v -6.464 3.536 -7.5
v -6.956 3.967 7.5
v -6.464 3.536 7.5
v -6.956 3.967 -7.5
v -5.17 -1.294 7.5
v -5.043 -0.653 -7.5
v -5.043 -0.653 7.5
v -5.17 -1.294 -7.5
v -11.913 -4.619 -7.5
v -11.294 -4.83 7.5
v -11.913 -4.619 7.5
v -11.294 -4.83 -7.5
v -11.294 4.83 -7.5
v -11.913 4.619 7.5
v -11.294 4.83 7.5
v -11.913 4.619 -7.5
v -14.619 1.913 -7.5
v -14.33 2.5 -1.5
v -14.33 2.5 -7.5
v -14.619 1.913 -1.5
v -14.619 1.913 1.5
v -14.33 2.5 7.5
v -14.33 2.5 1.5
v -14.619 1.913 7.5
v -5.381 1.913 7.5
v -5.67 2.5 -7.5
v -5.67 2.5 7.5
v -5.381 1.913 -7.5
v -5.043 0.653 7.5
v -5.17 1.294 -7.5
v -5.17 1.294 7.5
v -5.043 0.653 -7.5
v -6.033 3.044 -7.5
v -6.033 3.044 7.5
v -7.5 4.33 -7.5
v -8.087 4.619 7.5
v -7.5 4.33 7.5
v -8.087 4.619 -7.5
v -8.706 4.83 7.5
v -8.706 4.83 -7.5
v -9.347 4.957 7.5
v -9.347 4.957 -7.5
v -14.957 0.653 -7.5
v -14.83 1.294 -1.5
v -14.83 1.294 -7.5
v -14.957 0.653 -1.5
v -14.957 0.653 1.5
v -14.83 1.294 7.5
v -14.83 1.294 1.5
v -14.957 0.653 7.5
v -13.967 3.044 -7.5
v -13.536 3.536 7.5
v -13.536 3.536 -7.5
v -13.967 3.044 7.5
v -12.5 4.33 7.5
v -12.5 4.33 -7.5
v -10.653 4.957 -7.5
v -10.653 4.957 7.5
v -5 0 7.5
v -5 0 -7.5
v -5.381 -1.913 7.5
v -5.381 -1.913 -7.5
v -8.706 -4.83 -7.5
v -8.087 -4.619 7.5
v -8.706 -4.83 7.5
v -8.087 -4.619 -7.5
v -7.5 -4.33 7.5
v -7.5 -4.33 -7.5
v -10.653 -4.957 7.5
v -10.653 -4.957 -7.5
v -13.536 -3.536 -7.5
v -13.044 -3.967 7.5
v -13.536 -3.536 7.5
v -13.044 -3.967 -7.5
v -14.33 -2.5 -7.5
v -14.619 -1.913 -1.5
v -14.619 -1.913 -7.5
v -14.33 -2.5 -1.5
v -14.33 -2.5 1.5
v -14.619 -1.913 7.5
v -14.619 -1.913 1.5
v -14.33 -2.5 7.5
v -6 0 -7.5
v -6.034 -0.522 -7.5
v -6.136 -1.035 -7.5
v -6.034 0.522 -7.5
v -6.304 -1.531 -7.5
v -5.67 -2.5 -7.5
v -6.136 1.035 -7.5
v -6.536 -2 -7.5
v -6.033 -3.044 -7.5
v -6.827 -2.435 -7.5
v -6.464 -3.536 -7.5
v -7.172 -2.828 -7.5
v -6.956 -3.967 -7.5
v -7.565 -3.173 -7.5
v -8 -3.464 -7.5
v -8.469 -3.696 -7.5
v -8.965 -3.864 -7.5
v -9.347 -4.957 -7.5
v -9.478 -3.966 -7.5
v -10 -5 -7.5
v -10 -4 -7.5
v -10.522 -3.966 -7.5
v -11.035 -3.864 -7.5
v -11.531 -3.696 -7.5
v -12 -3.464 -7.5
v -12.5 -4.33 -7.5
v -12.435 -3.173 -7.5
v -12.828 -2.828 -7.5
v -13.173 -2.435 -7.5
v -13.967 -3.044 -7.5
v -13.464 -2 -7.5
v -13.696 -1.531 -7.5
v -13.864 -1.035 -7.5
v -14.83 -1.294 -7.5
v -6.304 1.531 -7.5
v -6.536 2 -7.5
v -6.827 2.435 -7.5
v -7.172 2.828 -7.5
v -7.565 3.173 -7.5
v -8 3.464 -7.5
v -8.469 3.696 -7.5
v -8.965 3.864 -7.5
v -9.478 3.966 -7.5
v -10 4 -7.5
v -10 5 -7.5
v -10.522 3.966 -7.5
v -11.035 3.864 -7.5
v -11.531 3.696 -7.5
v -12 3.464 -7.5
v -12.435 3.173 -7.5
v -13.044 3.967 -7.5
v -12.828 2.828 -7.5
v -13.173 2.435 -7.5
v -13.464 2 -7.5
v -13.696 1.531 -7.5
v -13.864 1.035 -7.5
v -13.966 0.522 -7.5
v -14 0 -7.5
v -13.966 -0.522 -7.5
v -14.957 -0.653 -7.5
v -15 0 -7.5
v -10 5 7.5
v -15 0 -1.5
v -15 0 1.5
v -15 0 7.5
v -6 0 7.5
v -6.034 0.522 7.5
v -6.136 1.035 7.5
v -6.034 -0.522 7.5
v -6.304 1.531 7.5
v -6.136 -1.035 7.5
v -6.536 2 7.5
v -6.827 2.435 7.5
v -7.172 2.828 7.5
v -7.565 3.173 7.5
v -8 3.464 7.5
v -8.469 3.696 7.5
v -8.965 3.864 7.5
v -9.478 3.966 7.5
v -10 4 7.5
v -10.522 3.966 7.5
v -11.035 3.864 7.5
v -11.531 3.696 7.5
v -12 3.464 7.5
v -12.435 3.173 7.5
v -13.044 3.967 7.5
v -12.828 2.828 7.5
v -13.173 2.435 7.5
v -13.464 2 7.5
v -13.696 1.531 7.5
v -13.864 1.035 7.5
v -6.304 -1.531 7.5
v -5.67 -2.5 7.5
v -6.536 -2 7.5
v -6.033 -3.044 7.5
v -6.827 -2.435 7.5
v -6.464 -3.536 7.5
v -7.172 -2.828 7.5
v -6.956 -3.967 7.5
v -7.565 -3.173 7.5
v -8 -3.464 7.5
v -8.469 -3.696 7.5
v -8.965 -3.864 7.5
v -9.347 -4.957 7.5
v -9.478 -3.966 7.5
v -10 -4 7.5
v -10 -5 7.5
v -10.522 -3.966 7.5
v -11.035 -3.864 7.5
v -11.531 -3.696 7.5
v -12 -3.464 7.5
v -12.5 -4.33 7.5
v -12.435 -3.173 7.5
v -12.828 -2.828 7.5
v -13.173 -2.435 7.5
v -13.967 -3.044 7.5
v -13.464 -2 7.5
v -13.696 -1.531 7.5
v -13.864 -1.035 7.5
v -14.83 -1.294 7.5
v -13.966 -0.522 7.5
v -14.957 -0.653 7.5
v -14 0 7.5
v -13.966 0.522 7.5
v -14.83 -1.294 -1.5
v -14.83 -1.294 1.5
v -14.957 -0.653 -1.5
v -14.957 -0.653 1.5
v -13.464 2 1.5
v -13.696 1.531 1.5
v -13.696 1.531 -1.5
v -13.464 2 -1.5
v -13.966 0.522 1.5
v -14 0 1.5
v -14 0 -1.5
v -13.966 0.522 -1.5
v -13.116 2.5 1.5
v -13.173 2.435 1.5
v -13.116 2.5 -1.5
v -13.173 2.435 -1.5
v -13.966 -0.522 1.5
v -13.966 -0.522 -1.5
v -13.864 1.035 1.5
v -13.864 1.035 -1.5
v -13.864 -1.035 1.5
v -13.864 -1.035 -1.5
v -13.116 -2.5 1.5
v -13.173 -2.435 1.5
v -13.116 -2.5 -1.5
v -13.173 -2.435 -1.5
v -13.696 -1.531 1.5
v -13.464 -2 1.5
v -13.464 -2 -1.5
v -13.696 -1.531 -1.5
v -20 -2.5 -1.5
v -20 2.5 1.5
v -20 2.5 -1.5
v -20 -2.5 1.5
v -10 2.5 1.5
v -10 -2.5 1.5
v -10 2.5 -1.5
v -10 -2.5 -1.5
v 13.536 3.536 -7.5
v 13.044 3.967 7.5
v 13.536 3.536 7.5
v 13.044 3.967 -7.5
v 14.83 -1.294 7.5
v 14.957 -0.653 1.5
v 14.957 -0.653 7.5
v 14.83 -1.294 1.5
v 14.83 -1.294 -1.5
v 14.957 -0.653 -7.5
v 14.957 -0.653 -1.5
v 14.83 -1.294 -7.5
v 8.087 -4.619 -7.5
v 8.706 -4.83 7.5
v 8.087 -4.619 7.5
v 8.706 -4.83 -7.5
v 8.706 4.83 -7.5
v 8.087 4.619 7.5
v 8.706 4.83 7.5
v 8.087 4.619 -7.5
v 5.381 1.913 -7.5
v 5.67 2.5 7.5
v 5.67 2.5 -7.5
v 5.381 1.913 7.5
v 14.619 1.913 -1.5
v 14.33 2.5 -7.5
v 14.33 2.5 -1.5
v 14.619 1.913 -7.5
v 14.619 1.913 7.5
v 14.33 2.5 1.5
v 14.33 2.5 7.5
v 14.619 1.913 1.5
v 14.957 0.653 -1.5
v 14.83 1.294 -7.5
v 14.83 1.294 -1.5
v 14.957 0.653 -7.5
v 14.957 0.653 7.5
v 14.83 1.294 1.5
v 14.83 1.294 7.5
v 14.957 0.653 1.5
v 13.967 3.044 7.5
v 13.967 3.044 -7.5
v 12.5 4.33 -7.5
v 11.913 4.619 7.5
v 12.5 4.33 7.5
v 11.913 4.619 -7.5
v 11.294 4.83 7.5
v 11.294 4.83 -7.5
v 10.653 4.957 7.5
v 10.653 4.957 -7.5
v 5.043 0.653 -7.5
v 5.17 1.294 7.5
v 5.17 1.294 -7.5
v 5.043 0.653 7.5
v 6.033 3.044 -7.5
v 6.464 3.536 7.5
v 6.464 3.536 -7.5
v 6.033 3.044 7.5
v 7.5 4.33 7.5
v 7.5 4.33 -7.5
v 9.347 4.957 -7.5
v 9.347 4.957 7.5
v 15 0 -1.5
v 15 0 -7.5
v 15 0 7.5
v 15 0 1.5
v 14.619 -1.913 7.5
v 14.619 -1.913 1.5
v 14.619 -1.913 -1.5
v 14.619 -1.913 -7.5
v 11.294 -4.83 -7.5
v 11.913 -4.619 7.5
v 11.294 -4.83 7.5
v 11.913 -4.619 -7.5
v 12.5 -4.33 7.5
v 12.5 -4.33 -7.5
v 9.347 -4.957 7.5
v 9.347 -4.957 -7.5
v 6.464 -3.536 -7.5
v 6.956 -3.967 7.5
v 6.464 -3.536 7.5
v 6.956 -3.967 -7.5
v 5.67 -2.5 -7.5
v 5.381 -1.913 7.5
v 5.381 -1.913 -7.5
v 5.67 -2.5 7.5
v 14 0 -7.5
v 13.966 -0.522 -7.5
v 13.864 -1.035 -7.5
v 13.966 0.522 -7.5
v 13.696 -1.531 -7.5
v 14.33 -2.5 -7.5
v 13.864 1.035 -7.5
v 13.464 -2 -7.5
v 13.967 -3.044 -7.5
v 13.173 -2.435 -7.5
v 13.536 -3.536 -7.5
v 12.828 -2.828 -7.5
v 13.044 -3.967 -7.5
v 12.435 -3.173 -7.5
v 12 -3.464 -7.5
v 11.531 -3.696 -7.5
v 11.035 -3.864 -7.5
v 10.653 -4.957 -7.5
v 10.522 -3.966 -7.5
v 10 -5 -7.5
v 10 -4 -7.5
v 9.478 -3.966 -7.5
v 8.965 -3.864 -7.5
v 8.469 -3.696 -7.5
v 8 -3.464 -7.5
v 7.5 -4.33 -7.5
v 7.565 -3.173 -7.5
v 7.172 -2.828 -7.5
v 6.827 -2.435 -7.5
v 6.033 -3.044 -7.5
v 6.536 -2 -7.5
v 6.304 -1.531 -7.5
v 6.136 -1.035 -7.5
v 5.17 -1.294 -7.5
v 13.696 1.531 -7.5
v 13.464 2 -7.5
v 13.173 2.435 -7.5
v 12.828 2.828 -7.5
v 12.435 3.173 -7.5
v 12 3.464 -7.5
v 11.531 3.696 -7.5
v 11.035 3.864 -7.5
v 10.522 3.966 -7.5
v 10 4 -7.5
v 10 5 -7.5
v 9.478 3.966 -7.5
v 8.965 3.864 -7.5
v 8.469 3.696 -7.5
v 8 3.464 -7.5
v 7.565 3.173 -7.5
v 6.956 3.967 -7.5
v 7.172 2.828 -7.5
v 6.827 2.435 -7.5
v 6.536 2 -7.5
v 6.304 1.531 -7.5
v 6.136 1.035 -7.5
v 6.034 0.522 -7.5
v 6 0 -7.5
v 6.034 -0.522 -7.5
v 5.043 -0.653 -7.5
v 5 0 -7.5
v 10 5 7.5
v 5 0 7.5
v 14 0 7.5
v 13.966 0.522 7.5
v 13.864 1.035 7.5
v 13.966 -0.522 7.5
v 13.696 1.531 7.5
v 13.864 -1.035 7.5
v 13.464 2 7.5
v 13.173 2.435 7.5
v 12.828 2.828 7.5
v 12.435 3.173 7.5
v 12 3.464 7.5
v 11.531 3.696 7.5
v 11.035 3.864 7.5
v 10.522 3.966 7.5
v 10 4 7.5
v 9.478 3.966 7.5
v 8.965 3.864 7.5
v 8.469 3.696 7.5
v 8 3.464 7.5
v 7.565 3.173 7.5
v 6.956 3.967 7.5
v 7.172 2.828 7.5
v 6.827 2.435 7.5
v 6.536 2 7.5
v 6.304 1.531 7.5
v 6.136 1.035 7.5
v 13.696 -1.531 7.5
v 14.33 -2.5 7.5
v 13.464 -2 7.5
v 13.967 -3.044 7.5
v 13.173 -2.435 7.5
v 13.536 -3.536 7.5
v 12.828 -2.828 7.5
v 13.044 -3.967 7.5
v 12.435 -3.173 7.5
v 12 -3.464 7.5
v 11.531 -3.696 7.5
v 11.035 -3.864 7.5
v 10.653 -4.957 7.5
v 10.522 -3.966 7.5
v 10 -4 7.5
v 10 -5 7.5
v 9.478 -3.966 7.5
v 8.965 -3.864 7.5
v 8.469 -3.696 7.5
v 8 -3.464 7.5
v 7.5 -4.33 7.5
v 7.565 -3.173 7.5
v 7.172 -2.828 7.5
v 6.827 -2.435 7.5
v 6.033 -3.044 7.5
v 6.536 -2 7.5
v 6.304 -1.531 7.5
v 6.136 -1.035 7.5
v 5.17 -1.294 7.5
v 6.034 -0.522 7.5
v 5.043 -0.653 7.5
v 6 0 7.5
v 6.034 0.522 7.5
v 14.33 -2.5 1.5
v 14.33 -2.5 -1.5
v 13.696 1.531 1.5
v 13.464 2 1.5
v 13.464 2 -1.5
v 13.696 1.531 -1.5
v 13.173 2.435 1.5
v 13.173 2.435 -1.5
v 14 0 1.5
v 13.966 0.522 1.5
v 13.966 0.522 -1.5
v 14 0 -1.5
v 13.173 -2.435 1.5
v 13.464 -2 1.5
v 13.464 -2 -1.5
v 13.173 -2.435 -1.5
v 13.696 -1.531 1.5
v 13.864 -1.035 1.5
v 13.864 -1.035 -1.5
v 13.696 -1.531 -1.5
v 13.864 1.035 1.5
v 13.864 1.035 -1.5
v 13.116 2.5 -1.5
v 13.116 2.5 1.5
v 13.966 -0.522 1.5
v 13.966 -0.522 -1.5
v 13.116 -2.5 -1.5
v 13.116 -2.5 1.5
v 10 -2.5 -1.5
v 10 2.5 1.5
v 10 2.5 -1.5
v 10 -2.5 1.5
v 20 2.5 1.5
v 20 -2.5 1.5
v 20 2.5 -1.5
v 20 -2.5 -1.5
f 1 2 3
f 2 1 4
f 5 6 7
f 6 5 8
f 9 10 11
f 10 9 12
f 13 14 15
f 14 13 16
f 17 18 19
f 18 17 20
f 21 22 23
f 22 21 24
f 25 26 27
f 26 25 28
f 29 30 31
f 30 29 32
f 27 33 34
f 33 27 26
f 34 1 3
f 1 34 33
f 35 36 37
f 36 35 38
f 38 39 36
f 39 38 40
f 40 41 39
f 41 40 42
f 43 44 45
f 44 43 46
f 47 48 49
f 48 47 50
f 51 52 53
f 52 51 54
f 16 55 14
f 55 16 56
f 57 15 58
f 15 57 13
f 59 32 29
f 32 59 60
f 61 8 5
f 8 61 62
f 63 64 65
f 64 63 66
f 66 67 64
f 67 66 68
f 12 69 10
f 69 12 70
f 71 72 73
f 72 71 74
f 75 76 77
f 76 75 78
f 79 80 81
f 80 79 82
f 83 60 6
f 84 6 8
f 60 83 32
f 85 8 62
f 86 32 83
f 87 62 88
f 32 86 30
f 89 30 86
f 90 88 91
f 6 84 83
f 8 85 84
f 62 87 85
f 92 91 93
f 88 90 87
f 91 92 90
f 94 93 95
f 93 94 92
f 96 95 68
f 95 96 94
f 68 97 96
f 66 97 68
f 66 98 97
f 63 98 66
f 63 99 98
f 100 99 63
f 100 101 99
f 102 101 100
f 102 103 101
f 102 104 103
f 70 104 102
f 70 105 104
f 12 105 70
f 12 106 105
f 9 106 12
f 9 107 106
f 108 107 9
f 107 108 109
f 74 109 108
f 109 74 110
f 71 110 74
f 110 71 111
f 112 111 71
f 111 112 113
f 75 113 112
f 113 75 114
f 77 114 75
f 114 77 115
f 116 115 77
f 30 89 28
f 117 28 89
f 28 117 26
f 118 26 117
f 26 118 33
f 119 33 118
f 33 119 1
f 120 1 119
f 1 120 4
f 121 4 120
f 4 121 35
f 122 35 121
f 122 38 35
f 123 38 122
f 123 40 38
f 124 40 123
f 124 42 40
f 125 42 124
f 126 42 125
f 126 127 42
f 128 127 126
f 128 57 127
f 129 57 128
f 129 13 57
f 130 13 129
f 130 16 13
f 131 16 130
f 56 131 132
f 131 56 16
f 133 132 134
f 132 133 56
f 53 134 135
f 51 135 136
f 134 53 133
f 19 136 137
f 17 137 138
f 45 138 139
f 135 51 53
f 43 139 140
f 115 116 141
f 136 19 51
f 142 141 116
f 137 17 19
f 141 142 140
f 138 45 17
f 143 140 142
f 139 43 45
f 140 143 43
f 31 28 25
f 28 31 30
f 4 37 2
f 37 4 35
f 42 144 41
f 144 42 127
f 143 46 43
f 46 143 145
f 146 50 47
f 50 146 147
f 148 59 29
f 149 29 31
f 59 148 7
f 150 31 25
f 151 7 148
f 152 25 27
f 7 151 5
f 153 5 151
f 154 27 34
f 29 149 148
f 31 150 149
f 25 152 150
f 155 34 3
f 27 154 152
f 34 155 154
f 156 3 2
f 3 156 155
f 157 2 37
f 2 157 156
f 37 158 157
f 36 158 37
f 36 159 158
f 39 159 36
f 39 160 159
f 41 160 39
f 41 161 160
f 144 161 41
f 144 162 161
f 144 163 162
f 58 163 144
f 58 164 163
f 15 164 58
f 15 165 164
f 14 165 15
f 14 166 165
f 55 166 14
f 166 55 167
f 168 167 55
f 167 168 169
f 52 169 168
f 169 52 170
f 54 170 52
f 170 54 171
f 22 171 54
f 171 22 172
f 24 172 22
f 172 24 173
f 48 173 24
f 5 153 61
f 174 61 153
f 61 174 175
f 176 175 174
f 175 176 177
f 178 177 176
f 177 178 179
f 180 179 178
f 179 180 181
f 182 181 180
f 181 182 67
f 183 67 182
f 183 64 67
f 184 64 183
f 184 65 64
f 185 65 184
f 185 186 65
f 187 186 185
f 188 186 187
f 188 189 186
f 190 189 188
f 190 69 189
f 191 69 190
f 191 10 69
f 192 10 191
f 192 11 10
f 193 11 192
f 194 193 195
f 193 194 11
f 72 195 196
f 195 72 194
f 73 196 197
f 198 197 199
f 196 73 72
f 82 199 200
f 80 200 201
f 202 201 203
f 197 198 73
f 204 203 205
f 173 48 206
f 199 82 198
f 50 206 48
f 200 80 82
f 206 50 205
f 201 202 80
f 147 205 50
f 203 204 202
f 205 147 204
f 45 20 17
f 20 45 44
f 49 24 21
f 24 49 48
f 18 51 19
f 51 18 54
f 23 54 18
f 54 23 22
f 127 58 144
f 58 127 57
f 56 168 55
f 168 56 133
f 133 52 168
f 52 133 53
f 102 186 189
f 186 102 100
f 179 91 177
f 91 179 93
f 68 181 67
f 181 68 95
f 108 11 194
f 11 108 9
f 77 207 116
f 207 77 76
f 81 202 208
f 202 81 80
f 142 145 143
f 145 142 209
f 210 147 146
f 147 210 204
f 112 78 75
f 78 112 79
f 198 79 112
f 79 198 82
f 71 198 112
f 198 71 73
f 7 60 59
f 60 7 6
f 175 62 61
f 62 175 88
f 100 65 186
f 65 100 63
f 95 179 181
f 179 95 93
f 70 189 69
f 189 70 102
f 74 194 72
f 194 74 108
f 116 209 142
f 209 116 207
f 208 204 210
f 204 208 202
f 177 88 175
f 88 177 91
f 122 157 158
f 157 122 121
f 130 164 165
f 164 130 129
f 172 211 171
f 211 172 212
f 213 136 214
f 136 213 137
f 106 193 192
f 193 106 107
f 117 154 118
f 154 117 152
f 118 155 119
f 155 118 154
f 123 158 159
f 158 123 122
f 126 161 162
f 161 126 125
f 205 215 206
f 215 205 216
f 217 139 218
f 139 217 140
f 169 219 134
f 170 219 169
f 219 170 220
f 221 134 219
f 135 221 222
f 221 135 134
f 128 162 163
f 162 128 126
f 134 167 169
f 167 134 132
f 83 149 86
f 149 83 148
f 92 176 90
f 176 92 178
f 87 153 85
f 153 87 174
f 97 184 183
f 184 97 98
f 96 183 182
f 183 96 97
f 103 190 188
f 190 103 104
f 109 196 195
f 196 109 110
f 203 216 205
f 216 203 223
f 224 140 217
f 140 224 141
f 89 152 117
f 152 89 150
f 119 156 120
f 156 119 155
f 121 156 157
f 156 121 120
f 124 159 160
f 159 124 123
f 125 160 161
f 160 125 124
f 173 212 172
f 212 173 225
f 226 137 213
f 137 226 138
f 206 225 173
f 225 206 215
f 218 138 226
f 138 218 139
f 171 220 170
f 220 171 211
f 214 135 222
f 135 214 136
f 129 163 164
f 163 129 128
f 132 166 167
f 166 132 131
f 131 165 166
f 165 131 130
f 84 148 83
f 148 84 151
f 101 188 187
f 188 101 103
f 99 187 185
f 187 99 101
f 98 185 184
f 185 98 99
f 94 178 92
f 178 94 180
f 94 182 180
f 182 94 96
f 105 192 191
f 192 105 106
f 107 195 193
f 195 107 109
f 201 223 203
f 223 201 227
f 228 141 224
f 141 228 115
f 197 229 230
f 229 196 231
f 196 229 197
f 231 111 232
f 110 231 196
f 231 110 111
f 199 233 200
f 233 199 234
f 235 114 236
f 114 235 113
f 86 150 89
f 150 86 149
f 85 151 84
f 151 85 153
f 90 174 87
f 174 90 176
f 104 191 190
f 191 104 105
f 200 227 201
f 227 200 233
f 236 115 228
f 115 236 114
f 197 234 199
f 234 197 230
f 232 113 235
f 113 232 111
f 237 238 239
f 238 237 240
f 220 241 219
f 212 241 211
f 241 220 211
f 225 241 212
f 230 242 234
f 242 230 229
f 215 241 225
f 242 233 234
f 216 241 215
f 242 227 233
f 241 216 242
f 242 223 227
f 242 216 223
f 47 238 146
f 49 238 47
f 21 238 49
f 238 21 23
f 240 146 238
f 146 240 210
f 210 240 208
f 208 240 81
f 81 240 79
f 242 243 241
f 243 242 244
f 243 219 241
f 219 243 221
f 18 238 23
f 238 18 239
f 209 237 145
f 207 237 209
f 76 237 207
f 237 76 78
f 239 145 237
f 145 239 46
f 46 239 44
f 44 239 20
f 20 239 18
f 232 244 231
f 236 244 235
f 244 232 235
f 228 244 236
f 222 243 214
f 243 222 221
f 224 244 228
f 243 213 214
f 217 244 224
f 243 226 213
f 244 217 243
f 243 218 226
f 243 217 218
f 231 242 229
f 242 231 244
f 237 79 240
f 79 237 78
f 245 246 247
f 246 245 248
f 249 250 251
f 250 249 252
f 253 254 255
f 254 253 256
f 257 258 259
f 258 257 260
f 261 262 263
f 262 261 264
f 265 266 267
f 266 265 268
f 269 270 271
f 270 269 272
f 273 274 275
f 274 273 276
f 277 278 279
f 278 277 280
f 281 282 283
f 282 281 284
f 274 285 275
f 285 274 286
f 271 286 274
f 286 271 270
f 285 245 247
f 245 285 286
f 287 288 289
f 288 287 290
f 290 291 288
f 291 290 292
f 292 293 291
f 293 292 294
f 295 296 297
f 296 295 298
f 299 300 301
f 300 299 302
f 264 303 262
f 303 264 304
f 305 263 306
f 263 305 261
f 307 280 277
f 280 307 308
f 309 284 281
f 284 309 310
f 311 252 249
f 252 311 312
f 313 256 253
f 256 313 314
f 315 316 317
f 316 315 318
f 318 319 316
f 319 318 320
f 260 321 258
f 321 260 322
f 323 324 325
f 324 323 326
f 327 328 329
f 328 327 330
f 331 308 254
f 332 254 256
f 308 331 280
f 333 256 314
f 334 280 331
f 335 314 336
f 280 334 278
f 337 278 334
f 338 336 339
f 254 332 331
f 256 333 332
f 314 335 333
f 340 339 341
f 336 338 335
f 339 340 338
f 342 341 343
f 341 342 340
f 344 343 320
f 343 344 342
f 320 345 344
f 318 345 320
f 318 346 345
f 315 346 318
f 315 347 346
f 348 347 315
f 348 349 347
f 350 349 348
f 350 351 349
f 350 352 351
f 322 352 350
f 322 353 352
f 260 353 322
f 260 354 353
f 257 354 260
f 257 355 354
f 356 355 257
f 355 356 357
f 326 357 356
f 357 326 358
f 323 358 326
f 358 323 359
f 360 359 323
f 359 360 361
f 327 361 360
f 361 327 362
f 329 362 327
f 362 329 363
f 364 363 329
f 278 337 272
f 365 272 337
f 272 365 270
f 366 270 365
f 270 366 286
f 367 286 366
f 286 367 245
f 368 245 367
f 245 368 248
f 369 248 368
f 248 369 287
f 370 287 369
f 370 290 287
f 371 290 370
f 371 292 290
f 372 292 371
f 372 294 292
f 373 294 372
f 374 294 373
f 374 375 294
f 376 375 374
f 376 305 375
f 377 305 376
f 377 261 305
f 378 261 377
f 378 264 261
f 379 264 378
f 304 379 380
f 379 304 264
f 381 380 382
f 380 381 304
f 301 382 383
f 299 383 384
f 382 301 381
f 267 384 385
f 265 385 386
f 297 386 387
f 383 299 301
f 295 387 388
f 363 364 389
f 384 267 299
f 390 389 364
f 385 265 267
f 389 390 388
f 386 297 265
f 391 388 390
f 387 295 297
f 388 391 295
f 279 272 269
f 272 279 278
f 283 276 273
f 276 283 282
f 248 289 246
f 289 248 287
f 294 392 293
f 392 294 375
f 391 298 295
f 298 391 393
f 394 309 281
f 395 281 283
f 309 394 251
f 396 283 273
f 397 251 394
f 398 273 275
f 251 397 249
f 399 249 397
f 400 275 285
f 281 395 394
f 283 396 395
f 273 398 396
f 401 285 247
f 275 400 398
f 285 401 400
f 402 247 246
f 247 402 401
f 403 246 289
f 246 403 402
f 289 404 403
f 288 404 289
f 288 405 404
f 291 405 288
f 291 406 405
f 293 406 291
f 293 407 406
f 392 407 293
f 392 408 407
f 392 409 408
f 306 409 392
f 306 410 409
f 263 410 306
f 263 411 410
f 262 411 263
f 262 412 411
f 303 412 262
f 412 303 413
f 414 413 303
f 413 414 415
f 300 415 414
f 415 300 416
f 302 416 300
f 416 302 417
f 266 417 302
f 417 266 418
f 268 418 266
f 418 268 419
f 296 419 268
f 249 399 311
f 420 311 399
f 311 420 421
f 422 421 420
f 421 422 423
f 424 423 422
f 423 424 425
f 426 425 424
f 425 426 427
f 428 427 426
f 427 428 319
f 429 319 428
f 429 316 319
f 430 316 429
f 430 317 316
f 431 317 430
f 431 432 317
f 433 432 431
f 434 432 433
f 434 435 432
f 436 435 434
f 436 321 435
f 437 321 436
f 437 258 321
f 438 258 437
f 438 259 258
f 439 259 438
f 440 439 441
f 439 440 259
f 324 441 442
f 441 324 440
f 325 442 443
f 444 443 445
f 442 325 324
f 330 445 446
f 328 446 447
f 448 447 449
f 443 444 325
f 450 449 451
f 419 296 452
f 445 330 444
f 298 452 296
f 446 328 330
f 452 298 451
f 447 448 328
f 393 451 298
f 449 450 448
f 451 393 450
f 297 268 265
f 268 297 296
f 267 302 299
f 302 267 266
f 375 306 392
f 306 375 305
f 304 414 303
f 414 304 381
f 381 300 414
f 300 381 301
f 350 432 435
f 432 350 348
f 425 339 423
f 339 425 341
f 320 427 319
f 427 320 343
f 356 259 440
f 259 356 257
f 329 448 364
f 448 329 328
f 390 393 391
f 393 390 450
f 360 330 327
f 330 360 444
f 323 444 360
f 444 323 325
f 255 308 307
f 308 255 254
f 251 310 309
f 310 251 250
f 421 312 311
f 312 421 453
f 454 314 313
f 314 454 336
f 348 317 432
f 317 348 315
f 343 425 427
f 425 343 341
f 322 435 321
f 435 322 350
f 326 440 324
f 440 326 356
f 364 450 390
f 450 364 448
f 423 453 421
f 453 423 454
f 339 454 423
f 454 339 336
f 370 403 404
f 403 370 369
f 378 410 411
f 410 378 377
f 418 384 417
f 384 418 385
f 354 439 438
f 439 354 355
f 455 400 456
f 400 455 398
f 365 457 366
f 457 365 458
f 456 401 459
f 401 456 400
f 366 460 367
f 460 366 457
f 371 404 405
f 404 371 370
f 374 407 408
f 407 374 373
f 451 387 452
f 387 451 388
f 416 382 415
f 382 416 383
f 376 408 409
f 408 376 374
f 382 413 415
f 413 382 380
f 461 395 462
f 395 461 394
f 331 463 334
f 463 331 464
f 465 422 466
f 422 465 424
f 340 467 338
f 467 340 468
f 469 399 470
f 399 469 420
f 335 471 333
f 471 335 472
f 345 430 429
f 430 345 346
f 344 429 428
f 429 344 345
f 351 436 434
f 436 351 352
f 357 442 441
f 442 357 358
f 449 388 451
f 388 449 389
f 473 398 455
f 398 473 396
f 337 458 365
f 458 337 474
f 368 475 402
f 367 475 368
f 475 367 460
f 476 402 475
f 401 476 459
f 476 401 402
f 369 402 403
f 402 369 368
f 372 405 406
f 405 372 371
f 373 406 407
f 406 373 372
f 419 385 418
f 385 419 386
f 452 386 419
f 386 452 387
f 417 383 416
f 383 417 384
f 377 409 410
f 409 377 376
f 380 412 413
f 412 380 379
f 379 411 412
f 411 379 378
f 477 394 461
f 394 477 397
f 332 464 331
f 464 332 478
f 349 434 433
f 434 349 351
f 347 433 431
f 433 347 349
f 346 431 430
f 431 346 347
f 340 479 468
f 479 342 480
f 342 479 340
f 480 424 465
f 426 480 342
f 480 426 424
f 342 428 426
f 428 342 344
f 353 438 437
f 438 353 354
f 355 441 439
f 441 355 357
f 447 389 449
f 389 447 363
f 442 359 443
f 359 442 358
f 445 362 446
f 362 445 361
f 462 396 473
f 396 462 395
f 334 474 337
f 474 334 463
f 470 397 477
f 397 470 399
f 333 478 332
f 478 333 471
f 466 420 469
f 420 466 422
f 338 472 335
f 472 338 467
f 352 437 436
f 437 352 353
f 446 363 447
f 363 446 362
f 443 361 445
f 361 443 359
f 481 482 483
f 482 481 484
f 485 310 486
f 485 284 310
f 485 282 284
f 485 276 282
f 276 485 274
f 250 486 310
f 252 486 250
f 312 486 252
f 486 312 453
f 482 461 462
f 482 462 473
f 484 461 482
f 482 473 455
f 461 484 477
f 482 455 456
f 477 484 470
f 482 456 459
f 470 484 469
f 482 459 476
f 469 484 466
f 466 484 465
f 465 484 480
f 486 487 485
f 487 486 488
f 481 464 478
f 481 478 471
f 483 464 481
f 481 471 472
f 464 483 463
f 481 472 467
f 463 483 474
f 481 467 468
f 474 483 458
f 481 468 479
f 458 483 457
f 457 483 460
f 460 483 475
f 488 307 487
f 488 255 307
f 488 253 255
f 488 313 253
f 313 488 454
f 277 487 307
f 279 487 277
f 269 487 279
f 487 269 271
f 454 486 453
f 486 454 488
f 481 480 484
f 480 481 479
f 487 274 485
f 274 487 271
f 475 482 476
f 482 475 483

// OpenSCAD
// Generated by SolidPython 1.1.3 on 2023-04-07 20:21:48
$fn = 48;


union() {
	union() {
		translate(v = [-15, 0, 0]) {
			cube(center = true, size = [10, 5, 3]);
		}
		translate(v = [-10, 0, 0]) {
			difference() {
				cylinder(center = true, h = 15, r = 5);
				cylinder(center = true, h = 16, r = 4);
			}
		}
	}
	union() {
		translate(v = [15, 0, 0]) {
			cube(center = true, size = [10, 5, 3]);
		}
		translate(v = [10, 0, 0]) {
			difference() {
				cylinder(center = true, h = 15, r = 5);
				cylinder(center = true, h = 16, r = 4);
			}
		}
	}
}
